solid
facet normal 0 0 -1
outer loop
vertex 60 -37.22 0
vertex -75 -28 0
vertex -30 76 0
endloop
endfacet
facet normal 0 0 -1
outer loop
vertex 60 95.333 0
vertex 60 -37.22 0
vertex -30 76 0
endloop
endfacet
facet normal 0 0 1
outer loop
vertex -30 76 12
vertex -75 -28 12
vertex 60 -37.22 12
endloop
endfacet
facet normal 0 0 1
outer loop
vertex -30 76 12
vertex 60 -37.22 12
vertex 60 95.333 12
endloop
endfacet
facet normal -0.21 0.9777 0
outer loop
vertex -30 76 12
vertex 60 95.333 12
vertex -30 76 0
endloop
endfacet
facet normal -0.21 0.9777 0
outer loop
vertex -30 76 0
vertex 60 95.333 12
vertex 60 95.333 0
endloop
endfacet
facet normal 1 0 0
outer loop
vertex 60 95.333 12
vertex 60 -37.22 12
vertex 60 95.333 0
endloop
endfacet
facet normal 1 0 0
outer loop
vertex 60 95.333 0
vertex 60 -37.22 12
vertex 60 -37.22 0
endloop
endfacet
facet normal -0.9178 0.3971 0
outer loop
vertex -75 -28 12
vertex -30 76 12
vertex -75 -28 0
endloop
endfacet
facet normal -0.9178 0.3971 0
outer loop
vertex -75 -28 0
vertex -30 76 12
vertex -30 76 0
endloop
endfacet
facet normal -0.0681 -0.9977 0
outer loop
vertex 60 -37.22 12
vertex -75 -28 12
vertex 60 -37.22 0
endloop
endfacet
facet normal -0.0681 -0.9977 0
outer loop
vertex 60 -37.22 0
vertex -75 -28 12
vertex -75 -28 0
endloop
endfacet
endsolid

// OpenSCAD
polyhedron(points=[[-30.0, 76.0, 0.0], [60.0, 95.333333, 0.0], [60.0, -37.219512, 0.0], [-75.0, -28.0, 0.0], [-30.0, 76.0, 12.0], [60.0, 95.333333, 12.0], [60.0, -37.219512, 12.0], [-75.0, -28.0, 12.0]], faces=[[2, 3, 0], [1, 2, 0], [4, 7, 6], [4, 6, 5], [4, 5, 0], [0, 5, 1], [5, 6, 1], [1, 6, 2], [7, 4, 3], [3, 4, 0], [6, 7, 2], [2, 7, 3]], convexity=30);
